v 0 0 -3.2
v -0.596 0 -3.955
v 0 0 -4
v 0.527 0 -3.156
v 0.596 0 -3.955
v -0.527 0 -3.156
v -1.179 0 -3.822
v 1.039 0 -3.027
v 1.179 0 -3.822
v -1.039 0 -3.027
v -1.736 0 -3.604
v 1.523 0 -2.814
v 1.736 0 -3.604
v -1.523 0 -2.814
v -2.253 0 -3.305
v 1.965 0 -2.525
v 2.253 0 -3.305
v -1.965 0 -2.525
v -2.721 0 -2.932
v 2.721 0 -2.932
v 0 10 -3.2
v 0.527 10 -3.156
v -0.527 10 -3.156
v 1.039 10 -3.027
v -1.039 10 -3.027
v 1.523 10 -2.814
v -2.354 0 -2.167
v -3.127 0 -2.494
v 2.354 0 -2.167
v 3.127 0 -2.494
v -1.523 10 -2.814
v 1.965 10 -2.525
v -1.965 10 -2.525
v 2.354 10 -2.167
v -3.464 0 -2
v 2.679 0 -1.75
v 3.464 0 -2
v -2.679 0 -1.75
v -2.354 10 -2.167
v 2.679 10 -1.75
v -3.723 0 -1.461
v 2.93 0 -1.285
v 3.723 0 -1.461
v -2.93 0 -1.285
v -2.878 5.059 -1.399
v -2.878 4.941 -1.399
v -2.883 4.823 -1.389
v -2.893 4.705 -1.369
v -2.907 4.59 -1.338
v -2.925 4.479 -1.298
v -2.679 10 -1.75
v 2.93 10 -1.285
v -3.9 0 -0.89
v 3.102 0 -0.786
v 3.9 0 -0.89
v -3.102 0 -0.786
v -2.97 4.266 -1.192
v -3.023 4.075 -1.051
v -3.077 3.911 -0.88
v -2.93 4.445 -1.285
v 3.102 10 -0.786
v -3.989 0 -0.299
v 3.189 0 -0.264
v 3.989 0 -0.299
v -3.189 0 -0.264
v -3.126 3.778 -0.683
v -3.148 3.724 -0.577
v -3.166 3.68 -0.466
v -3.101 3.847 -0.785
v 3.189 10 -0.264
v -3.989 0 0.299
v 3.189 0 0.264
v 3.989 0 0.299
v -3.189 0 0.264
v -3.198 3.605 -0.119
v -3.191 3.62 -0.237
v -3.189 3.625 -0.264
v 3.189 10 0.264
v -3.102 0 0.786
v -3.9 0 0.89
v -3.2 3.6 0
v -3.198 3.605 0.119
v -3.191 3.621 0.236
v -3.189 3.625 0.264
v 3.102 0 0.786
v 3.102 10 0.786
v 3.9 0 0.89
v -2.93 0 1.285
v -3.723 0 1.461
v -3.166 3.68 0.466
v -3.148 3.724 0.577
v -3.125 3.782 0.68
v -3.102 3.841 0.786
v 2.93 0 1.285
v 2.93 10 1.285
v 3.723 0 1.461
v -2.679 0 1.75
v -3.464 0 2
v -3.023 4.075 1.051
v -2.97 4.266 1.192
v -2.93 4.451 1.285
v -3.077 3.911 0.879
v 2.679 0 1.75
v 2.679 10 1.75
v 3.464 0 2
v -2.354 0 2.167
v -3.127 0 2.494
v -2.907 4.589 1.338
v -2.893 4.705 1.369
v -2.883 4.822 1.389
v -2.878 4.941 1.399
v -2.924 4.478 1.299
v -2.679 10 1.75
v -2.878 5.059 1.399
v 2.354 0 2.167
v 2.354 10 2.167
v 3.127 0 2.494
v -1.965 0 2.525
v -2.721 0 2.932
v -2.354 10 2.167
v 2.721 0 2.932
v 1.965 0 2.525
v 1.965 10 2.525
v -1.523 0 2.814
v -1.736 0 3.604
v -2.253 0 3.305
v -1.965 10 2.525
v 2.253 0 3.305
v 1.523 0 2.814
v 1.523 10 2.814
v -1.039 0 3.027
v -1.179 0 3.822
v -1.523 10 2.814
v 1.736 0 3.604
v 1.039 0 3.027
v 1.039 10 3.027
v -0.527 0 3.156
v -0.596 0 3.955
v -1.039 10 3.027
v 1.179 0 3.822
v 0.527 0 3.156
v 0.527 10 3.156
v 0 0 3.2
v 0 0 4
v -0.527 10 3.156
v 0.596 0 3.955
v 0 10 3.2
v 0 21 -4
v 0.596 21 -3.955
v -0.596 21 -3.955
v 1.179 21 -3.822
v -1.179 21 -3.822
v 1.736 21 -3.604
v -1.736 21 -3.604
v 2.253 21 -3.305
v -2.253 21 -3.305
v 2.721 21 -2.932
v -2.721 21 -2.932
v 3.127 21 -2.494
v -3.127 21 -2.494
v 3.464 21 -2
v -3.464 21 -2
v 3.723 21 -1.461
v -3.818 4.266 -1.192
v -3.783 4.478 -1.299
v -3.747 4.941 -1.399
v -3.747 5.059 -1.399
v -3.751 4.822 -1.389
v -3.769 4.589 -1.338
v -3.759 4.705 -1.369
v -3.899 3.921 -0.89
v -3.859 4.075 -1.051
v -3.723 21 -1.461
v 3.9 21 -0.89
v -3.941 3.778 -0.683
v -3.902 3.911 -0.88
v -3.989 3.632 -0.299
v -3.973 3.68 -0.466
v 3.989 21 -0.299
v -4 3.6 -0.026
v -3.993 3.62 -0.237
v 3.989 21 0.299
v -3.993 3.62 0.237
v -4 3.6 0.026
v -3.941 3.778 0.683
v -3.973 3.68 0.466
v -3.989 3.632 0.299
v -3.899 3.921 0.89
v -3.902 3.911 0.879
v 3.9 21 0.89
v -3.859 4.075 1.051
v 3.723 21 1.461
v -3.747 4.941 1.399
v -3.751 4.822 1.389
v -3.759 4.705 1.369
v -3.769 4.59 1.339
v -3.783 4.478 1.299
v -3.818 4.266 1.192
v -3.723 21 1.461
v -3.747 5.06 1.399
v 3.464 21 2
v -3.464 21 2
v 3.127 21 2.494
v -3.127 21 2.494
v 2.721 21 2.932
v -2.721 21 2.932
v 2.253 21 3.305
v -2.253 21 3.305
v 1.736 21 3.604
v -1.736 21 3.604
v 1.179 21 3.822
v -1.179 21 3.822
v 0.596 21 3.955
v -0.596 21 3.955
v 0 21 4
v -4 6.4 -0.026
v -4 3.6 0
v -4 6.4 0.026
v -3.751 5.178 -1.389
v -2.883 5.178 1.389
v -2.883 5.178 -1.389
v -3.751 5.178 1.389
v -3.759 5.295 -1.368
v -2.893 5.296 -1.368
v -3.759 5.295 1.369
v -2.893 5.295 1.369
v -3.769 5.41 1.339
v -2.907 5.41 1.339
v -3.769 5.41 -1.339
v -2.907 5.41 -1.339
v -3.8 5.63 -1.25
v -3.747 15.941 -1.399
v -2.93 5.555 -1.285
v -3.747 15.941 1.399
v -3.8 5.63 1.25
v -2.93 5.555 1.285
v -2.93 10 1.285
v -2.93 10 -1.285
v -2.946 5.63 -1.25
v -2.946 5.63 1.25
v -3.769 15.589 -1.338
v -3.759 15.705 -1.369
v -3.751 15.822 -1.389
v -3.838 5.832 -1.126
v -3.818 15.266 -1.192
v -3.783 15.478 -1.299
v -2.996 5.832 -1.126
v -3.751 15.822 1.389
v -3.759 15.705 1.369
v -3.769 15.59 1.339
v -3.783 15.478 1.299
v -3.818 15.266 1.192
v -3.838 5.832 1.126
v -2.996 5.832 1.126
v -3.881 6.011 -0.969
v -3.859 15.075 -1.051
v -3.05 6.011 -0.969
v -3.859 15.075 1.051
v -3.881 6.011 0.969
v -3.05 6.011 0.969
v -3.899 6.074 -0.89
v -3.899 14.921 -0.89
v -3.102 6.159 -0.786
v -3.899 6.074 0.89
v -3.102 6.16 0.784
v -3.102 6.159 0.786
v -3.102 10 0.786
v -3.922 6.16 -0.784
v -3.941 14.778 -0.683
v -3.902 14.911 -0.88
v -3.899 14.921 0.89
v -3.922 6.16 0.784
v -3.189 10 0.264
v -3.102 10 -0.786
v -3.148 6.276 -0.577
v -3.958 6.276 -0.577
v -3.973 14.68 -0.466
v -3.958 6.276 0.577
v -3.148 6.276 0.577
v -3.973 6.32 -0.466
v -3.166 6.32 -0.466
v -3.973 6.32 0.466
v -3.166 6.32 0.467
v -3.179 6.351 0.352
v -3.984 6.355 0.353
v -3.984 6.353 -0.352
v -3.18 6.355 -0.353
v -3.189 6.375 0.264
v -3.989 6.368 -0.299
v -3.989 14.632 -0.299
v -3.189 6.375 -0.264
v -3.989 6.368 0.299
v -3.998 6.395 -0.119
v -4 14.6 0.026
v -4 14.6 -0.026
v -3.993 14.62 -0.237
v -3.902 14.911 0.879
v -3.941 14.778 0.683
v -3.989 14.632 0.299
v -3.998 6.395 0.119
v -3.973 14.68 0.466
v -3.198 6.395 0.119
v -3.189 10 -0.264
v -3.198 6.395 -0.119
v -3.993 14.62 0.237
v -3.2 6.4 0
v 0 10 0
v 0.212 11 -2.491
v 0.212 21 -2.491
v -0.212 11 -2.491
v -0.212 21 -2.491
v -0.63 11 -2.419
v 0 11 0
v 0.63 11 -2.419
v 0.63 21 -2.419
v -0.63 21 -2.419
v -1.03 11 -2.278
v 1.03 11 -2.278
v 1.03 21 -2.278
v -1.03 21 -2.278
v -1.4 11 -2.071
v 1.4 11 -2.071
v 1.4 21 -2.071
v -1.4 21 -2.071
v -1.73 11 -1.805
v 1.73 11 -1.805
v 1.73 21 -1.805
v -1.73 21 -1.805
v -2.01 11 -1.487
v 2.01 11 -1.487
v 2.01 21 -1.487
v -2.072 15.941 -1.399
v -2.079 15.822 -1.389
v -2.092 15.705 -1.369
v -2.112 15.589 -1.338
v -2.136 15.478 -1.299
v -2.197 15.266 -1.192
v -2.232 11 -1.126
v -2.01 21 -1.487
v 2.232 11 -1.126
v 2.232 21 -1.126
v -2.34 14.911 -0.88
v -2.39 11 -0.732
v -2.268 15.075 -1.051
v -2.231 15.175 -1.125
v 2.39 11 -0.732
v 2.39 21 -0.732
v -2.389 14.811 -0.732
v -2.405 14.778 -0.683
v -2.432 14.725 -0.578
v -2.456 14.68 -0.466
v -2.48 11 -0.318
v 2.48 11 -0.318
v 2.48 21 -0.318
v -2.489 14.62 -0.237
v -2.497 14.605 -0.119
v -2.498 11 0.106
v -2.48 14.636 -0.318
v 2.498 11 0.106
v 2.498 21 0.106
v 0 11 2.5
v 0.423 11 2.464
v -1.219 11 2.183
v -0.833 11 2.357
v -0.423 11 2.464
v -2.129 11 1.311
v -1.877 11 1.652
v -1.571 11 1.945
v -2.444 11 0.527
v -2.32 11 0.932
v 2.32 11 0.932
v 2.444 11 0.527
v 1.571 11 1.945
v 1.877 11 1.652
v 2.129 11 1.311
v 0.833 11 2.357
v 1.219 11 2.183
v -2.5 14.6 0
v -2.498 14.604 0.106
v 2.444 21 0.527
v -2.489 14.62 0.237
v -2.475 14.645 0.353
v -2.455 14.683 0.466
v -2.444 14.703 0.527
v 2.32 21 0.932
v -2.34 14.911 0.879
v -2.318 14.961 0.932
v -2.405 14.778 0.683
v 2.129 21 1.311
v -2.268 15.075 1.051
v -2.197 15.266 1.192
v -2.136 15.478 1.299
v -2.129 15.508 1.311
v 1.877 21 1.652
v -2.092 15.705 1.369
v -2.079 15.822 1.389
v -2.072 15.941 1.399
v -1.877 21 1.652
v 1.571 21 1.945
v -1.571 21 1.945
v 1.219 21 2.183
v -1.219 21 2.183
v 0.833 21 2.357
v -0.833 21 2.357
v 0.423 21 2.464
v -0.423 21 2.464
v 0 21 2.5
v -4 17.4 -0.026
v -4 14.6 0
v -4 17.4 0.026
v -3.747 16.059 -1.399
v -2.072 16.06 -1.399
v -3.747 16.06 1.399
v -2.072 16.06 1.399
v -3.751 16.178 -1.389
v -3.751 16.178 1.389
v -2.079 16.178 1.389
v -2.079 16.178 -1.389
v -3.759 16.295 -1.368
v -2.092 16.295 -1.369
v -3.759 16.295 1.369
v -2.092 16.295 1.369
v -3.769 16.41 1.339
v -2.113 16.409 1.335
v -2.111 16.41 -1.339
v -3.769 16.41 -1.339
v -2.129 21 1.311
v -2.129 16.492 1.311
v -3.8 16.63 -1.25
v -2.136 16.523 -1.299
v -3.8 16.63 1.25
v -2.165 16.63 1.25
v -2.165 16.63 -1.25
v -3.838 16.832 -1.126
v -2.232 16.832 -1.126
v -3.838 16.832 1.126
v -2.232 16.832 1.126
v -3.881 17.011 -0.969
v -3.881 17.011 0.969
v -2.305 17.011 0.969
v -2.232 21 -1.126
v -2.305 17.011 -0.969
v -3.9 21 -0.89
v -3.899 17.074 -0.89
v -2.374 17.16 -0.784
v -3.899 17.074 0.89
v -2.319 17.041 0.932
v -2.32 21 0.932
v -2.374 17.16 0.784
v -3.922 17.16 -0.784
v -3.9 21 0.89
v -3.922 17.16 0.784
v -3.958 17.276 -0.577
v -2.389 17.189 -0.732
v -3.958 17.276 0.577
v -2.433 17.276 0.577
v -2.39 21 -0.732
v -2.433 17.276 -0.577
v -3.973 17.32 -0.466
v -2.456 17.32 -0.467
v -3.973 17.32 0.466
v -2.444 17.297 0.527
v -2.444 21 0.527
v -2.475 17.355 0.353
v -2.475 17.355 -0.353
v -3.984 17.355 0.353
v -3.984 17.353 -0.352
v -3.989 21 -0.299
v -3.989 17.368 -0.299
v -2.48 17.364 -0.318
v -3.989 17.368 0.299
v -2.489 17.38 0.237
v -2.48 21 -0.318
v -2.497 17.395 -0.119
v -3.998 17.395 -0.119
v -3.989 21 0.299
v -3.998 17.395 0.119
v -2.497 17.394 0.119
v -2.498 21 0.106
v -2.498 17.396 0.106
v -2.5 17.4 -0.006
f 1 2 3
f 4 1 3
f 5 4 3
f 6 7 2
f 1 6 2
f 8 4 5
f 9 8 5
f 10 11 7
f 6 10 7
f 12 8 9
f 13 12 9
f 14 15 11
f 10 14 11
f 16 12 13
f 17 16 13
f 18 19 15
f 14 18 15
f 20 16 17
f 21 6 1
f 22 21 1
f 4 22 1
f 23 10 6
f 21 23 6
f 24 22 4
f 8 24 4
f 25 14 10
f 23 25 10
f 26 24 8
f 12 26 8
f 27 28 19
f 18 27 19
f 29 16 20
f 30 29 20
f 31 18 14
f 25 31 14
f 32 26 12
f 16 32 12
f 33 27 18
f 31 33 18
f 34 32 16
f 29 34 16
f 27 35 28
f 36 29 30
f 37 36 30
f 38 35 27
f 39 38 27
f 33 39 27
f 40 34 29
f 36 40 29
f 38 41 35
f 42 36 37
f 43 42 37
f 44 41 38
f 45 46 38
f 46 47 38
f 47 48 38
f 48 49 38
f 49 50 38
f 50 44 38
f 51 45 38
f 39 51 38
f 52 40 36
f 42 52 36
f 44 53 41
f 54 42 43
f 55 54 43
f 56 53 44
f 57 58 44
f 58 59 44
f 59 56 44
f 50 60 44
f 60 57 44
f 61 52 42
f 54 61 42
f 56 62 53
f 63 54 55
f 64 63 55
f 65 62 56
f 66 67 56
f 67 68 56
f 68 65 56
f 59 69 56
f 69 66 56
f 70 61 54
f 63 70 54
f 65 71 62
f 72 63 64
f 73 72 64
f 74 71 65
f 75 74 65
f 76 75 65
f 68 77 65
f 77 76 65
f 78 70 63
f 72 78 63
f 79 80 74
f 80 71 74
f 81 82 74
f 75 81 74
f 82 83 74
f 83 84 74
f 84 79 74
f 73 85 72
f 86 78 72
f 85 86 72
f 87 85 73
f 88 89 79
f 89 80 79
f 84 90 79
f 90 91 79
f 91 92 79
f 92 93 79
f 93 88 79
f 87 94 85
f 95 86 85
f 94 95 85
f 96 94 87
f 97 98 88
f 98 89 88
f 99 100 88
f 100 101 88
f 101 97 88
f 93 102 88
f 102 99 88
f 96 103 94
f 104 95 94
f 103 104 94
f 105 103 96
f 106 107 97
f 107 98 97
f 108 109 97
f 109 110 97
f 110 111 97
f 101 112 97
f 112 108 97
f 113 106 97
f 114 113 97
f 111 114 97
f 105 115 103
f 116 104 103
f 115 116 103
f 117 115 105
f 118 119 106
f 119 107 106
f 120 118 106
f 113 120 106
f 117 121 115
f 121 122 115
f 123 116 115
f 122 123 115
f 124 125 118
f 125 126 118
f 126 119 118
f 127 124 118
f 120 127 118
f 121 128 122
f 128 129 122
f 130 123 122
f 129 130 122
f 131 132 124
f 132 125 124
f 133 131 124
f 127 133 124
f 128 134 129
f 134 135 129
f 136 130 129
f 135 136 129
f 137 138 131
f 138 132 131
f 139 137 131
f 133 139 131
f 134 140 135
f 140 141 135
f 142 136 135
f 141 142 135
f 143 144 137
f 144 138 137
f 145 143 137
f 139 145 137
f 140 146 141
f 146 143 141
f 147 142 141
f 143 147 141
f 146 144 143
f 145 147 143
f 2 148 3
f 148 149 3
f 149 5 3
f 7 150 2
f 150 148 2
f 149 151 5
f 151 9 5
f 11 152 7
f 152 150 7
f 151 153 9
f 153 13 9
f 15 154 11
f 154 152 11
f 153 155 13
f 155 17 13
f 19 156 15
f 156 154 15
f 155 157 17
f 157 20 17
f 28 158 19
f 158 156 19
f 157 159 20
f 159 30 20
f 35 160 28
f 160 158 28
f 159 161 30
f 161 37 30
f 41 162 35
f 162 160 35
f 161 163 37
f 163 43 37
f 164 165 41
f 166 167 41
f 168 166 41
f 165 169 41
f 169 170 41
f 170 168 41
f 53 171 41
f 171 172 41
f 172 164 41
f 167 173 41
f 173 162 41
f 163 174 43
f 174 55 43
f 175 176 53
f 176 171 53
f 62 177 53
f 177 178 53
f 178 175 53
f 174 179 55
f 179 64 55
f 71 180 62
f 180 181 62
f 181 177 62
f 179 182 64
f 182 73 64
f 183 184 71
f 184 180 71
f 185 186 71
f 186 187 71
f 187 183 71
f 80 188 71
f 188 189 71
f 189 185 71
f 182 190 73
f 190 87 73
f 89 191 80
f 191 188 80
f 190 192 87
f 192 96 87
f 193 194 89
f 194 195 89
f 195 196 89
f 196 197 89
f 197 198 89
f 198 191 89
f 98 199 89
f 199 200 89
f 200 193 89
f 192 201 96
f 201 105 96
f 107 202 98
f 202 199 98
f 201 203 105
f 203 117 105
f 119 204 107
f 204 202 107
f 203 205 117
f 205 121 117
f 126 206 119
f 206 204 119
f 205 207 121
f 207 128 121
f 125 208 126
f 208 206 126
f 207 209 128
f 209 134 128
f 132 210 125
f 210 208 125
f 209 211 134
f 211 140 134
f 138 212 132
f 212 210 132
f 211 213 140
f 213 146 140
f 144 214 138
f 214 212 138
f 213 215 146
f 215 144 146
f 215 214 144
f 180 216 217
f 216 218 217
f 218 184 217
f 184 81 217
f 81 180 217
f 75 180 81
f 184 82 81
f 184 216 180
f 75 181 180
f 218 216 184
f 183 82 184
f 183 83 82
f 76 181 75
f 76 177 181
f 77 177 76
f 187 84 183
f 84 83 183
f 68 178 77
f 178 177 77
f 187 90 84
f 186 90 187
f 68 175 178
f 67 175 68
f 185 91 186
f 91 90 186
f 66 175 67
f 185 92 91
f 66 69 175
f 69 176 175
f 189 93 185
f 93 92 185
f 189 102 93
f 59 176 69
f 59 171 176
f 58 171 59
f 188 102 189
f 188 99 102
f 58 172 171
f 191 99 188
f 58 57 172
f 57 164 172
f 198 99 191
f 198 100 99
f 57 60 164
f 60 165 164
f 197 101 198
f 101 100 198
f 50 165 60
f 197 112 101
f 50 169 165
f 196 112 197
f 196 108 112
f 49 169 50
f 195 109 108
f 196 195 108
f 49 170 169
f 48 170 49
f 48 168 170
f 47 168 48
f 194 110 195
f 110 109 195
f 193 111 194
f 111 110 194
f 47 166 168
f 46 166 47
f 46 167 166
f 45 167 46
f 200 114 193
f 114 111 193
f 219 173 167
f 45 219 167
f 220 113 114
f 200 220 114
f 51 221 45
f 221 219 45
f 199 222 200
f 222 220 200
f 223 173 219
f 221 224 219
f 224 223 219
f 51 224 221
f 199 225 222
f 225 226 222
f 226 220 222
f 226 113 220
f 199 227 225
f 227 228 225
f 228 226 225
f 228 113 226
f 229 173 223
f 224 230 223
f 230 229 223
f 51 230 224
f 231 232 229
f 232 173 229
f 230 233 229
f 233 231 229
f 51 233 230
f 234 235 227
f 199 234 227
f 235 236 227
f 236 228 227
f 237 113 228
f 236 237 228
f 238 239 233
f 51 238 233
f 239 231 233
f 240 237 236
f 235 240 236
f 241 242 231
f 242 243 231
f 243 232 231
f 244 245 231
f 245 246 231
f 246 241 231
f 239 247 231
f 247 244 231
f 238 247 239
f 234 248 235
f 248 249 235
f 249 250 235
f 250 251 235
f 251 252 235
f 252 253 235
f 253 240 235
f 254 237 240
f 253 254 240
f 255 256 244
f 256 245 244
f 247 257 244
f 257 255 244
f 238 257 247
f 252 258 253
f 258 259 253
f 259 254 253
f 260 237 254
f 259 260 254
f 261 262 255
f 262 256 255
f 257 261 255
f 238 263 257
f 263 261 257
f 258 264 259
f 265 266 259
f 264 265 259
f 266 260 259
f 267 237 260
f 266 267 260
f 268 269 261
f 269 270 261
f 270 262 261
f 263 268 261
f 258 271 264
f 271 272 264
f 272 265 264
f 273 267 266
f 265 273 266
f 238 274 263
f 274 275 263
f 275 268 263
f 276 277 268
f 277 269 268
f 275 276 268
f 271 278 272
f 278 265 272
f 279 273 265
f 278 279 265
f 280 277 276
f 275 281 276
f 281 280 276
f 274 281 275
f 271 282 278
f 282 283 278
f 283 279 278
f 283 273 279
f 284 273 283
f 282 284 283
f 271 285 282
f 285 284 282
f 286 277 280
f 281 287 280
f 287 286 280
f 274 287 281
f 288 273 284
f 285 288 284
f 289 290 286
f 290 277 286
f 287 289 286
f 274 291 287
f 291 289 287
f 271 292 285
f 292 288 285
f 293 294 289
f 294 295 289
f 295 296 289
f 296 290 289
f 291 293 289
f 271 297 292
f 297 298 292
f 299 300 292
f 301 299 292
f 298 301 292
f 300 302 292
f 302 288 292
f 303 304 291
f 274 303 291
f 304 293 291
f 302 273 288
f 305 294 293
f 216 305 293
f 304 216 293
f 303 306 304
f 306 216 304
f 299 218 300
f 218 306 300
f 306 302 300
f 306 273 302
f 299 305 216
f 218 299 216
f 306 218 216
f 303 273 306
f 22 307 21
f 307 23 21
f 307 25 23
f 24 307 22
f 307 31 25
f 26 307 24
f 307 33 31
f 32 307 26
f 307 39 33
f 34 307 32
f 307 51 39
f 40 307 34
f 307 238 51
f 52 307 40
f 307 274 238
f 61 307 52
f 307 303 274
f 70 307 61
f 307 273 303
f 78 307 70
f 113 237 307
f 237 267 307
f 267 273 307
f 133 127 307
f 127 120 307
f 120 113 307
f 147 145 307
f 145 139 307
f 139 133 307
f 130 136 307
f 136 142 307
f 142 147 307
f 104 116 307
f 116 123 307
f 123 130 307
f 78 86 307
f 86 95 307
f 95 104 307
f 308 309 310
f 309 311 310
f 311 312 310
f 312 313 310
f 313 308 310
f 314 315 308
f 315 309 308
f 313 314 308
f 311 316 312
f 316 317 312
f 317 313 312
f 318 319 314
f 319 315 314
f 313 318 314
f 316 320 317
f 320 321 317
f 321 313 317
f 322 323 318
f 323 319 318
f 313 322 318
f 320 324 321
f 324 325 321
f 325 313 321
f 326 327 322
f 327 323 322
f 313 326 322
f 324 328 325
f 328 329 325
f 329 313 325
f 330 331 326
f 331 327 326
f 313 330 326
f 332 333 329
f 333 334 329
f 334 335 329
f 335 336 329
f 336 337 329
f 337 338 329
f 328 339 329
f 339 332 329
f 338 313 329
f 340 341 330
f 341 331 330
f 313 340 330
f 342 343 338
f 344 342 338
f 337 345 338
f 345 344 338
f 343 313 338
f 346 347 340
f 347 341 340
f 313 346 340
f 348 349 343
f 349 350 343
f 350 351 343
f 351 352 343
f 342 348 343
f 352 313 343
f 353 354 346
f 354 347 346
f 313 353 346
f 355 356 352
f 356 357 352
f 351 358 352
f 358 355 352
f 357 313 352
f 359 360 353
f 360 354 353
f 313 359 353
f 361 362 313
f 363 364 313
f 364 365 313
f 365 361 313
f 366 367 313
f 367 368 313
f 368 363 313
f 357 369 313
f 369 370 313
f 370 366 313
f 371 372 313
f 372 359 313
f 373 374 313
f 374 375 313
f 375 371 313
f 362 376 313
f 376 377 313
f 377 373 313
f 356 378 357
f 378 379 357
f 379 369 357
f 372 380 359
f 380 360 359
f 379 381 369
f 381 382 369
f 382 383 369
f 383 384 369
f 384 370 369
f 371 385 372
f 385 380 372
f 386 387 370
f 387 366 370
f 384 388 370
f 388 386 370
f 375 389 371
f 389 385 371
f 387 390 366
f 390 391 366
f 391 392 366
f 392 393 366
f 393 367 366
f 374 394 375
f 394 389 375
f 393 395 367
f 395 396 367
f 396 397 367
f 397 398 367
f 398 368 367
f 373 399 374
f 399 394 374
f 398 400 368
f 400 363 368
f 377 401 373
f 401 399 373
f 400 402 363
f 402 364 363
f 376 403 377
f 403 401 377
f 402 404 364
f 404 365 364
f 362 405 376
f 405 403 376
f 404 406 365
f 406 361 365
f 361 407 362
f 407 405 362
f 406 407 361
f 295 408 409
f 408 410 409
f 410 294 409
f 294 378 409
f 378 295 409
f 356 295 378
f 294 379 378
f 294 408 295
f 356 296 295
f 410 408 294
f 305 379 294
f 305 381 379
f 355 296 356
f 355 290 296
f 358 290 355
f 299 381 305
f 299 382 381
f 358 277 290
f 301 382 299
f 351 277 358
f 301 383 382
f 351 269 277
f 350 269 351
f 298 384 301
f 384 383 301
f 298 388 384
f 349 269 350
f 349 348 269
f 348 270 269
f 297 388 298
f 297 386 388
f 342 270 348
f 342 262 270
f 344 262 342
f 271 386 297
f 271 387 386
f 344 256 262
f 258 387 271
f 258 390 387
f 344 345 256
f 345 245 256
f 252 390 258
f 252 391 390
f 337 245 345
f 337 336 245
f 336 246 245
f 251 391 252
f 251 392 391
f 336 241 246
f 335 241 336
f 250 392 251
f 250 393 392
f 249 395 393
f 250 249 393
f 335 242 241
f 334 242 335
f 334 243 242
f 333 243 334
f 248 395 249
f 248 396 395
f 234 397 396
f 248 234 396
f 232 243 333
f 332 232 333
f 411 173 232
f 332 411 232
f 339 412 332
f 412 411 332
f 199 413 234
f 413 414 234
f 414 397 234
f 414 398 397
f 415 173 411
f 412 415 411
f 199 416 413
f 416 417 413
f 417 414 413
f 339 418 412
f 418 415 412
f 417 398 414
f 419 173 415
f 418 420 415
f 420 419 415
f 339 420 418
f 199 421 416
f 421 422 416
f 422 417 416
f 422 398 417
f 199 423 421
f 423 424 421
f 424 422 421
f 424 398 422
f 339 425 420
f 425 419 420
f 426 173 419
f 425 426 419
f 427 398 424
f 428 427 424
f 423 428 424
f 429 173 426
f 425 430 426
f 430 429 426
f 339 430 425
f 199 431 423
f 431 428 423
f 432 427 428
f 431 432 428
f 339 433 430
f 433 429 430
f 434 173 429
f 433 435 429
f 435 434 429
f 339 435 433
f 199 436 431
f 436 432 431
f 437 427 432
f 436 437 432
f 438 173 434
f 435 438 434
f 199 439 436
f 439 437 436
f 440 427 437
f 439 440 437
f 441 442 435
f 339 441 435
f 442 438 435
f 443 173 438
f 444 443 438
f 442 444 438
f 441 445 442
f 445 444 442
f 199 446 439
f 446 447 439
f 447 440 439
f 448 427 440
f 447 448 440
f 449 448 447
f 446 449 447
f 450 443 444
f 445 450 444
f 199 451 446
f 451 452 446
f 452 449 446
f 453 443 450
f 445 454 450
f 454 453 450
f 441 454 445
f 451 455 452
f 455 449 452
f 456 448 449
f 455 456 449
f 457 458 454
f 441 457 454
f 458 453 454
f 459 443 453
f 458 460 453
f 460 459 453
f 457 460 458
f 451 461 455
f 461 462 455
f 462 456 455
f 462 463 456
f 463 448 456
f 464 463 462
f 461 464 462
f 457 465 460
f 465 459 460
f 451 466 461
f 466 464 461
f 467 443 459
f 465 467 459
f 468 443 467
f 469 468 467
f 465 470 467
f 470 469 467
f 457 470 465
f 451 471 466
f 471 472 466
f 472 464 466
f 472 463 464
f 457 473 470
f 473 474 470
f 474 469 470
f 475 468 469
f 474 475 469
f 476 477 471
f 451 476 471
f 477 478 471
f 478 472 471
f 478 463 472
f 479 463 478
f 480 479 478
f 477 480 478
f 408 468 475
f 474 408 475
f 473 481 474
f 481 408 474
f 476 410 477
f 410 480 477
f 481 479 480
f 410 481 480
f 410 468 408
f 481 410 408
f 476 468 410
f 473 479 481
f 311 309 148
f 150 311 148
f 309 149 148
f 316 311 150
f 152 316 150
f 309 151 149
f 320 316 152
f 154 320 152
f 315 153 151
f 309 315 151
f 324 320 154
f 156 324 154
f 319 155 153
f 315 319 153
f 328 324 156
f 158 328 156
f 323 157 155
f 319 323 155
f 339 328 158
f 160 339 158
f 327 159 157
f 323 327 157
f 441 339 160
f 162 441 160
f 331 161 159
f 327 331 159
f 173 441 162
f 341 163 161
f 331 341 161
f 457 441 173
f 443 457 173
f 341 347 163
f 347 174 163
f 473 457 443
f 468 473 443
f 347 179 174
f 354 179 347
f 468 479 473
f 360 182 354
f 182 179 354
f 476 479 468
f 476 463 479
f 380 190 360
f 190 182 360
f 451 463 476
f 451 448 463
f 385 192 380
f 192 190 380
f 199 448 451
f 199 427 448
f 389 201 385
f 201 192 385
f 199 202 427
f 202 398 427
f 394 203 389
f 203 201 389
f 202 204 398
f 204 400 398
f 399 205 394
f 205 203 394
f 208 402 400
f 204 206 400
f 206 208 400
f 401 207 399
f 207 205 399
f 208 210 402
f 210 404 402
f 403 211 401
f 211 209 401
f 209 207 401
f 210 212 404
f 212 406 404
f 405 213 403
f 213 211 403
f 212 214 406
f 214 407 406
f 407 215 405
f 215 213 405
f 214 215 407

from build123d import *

# Parameters (mm, degrees)
SKETCH1_R           = 4
BOSS_EXTRUDE1_DEPTH = 21
SKETCH2_R           = 3.2
CUT_EXTRUDE1_DEPTH  = 10
SKETCH3_R           = 2.5
CUT_EXTRUDE3_DEPTH  = 10


with BuildPart() as part:
    # Sketch1 → Boss-Extrude1 (new body)
    with BuildSketch(Plane(origin=(0, 0, 0), x_dir=(1, 0, 0), z_dir=(0, 1, 0))):
        with Locations(Location((0, 0, 0), (0, 0, 90))):
            Circle(SKETCH1_R)
    extrude(amount=BOSS_EXTRUDE1_DEPTH)

    # Sketch2 → Cut-Extrude1 (cut)
    with BuildSketch(Plane.XZ):
        with Locations(Location((0, 0, 0), (0, 0, 270))):
            Circle(SKETCH2_R)
    extrude(amount=-CUT_EXTRUDE1_DEPTH, mode=Mode.SUBTRACT)

    # Sketch3 → Cut-Extrude3 (cut)
    with BuildSketch(Plane(origin=(0, 21, 0), x_dir=(1, 0, 0), z_dir=(0, 1, 0))):
        with Locations(Location((0, 0, 0), (0, 0, 270))):
            Circle(SKETCH3_R)
    extrude(amount=-CUT_EXTRUDE3_DEPTH, mode=Mode.SUBTRACT)

    # Cut-Extrude5: read off the stored shape, not the designer's step
    # Cut-Extrude5: loft between two sections, ruled curve by curve
    cut_extrude5_from = [
        Edge.make_three_point_arc((-2.07101841, 14.6, 0), (-2.07101841, 16, 1.4), (-2.07101841, 17.4, 0)),
        Edge.make_three_point_arc((-2.07101841, 17.4, 0), (-2.07101841, 16, -1.4), (-2.07101841, 14.6, 0)),
    ]
    cut_extrude5_to = [
        Edge.make_three_point_arc((-3.999916451, 14.6, 0), (-3.999916451, 16, 1.4), (-3.999916451, 17.4, 0)),
        Edge.make_three_point_arc((-3.999916451, 17.4, 0), (-3.999916451, 16, -1.4), (-3.999916451, 14.6, 0)),
    ]
    cut_extrude5 = Solid(Shell([*[Face.make_surface_from_curves(cut_extrude5_from[k], cut_extrude5_to[k]) for k in range(2)], Face(Wire(cut_extrude5_from)), Face(Wire(cut_extrude5_to))]))
    add(cut_extrude5, mode=Mode.SUBTRACT)

    # Cut-Extrude5 2: loft between two sections, ruled curve by curve
    cut_extrude5_2_from = [
        Edge.make_three_point_arc((-2.877351837, 3.6, 0), (-2.877351837, 5, 1.4), (-2.877351837, 6.4, 0)),
        Edge.make_three_point_arc((-2.877351837, 6.4, 0), (-2.877351837, 5, -1.4), (-2.877351837, 3.6, 0)),
    ]
    cut_extrude5_2_to = [
        Edge.make_three_point_arc((-3.999916451, 3.6, 0), (-3.999916451, 5, 1.4), (-3.999916451, 6.4, 0)),
        Edge.make_three_point_arc((-3.999916451, 6.4, 0), (-3.999916451, 5, -1.4), (-3.999916451, 3.6, 0)),
    ]
    cut_extrude5_2 = Solid(Shell([*[Face.make_surface_from_curves(cut_extrude5_2_from[k], cut_extrude5_2_to[k]) for k in range(2)], Face(Wire(cut_extrude5_2_from)), Face(Wire(cut_extrude5_2_to))]))
    add(cut_extrude5_2, mode=Mode.SUBTRACT)


solid = part.part
